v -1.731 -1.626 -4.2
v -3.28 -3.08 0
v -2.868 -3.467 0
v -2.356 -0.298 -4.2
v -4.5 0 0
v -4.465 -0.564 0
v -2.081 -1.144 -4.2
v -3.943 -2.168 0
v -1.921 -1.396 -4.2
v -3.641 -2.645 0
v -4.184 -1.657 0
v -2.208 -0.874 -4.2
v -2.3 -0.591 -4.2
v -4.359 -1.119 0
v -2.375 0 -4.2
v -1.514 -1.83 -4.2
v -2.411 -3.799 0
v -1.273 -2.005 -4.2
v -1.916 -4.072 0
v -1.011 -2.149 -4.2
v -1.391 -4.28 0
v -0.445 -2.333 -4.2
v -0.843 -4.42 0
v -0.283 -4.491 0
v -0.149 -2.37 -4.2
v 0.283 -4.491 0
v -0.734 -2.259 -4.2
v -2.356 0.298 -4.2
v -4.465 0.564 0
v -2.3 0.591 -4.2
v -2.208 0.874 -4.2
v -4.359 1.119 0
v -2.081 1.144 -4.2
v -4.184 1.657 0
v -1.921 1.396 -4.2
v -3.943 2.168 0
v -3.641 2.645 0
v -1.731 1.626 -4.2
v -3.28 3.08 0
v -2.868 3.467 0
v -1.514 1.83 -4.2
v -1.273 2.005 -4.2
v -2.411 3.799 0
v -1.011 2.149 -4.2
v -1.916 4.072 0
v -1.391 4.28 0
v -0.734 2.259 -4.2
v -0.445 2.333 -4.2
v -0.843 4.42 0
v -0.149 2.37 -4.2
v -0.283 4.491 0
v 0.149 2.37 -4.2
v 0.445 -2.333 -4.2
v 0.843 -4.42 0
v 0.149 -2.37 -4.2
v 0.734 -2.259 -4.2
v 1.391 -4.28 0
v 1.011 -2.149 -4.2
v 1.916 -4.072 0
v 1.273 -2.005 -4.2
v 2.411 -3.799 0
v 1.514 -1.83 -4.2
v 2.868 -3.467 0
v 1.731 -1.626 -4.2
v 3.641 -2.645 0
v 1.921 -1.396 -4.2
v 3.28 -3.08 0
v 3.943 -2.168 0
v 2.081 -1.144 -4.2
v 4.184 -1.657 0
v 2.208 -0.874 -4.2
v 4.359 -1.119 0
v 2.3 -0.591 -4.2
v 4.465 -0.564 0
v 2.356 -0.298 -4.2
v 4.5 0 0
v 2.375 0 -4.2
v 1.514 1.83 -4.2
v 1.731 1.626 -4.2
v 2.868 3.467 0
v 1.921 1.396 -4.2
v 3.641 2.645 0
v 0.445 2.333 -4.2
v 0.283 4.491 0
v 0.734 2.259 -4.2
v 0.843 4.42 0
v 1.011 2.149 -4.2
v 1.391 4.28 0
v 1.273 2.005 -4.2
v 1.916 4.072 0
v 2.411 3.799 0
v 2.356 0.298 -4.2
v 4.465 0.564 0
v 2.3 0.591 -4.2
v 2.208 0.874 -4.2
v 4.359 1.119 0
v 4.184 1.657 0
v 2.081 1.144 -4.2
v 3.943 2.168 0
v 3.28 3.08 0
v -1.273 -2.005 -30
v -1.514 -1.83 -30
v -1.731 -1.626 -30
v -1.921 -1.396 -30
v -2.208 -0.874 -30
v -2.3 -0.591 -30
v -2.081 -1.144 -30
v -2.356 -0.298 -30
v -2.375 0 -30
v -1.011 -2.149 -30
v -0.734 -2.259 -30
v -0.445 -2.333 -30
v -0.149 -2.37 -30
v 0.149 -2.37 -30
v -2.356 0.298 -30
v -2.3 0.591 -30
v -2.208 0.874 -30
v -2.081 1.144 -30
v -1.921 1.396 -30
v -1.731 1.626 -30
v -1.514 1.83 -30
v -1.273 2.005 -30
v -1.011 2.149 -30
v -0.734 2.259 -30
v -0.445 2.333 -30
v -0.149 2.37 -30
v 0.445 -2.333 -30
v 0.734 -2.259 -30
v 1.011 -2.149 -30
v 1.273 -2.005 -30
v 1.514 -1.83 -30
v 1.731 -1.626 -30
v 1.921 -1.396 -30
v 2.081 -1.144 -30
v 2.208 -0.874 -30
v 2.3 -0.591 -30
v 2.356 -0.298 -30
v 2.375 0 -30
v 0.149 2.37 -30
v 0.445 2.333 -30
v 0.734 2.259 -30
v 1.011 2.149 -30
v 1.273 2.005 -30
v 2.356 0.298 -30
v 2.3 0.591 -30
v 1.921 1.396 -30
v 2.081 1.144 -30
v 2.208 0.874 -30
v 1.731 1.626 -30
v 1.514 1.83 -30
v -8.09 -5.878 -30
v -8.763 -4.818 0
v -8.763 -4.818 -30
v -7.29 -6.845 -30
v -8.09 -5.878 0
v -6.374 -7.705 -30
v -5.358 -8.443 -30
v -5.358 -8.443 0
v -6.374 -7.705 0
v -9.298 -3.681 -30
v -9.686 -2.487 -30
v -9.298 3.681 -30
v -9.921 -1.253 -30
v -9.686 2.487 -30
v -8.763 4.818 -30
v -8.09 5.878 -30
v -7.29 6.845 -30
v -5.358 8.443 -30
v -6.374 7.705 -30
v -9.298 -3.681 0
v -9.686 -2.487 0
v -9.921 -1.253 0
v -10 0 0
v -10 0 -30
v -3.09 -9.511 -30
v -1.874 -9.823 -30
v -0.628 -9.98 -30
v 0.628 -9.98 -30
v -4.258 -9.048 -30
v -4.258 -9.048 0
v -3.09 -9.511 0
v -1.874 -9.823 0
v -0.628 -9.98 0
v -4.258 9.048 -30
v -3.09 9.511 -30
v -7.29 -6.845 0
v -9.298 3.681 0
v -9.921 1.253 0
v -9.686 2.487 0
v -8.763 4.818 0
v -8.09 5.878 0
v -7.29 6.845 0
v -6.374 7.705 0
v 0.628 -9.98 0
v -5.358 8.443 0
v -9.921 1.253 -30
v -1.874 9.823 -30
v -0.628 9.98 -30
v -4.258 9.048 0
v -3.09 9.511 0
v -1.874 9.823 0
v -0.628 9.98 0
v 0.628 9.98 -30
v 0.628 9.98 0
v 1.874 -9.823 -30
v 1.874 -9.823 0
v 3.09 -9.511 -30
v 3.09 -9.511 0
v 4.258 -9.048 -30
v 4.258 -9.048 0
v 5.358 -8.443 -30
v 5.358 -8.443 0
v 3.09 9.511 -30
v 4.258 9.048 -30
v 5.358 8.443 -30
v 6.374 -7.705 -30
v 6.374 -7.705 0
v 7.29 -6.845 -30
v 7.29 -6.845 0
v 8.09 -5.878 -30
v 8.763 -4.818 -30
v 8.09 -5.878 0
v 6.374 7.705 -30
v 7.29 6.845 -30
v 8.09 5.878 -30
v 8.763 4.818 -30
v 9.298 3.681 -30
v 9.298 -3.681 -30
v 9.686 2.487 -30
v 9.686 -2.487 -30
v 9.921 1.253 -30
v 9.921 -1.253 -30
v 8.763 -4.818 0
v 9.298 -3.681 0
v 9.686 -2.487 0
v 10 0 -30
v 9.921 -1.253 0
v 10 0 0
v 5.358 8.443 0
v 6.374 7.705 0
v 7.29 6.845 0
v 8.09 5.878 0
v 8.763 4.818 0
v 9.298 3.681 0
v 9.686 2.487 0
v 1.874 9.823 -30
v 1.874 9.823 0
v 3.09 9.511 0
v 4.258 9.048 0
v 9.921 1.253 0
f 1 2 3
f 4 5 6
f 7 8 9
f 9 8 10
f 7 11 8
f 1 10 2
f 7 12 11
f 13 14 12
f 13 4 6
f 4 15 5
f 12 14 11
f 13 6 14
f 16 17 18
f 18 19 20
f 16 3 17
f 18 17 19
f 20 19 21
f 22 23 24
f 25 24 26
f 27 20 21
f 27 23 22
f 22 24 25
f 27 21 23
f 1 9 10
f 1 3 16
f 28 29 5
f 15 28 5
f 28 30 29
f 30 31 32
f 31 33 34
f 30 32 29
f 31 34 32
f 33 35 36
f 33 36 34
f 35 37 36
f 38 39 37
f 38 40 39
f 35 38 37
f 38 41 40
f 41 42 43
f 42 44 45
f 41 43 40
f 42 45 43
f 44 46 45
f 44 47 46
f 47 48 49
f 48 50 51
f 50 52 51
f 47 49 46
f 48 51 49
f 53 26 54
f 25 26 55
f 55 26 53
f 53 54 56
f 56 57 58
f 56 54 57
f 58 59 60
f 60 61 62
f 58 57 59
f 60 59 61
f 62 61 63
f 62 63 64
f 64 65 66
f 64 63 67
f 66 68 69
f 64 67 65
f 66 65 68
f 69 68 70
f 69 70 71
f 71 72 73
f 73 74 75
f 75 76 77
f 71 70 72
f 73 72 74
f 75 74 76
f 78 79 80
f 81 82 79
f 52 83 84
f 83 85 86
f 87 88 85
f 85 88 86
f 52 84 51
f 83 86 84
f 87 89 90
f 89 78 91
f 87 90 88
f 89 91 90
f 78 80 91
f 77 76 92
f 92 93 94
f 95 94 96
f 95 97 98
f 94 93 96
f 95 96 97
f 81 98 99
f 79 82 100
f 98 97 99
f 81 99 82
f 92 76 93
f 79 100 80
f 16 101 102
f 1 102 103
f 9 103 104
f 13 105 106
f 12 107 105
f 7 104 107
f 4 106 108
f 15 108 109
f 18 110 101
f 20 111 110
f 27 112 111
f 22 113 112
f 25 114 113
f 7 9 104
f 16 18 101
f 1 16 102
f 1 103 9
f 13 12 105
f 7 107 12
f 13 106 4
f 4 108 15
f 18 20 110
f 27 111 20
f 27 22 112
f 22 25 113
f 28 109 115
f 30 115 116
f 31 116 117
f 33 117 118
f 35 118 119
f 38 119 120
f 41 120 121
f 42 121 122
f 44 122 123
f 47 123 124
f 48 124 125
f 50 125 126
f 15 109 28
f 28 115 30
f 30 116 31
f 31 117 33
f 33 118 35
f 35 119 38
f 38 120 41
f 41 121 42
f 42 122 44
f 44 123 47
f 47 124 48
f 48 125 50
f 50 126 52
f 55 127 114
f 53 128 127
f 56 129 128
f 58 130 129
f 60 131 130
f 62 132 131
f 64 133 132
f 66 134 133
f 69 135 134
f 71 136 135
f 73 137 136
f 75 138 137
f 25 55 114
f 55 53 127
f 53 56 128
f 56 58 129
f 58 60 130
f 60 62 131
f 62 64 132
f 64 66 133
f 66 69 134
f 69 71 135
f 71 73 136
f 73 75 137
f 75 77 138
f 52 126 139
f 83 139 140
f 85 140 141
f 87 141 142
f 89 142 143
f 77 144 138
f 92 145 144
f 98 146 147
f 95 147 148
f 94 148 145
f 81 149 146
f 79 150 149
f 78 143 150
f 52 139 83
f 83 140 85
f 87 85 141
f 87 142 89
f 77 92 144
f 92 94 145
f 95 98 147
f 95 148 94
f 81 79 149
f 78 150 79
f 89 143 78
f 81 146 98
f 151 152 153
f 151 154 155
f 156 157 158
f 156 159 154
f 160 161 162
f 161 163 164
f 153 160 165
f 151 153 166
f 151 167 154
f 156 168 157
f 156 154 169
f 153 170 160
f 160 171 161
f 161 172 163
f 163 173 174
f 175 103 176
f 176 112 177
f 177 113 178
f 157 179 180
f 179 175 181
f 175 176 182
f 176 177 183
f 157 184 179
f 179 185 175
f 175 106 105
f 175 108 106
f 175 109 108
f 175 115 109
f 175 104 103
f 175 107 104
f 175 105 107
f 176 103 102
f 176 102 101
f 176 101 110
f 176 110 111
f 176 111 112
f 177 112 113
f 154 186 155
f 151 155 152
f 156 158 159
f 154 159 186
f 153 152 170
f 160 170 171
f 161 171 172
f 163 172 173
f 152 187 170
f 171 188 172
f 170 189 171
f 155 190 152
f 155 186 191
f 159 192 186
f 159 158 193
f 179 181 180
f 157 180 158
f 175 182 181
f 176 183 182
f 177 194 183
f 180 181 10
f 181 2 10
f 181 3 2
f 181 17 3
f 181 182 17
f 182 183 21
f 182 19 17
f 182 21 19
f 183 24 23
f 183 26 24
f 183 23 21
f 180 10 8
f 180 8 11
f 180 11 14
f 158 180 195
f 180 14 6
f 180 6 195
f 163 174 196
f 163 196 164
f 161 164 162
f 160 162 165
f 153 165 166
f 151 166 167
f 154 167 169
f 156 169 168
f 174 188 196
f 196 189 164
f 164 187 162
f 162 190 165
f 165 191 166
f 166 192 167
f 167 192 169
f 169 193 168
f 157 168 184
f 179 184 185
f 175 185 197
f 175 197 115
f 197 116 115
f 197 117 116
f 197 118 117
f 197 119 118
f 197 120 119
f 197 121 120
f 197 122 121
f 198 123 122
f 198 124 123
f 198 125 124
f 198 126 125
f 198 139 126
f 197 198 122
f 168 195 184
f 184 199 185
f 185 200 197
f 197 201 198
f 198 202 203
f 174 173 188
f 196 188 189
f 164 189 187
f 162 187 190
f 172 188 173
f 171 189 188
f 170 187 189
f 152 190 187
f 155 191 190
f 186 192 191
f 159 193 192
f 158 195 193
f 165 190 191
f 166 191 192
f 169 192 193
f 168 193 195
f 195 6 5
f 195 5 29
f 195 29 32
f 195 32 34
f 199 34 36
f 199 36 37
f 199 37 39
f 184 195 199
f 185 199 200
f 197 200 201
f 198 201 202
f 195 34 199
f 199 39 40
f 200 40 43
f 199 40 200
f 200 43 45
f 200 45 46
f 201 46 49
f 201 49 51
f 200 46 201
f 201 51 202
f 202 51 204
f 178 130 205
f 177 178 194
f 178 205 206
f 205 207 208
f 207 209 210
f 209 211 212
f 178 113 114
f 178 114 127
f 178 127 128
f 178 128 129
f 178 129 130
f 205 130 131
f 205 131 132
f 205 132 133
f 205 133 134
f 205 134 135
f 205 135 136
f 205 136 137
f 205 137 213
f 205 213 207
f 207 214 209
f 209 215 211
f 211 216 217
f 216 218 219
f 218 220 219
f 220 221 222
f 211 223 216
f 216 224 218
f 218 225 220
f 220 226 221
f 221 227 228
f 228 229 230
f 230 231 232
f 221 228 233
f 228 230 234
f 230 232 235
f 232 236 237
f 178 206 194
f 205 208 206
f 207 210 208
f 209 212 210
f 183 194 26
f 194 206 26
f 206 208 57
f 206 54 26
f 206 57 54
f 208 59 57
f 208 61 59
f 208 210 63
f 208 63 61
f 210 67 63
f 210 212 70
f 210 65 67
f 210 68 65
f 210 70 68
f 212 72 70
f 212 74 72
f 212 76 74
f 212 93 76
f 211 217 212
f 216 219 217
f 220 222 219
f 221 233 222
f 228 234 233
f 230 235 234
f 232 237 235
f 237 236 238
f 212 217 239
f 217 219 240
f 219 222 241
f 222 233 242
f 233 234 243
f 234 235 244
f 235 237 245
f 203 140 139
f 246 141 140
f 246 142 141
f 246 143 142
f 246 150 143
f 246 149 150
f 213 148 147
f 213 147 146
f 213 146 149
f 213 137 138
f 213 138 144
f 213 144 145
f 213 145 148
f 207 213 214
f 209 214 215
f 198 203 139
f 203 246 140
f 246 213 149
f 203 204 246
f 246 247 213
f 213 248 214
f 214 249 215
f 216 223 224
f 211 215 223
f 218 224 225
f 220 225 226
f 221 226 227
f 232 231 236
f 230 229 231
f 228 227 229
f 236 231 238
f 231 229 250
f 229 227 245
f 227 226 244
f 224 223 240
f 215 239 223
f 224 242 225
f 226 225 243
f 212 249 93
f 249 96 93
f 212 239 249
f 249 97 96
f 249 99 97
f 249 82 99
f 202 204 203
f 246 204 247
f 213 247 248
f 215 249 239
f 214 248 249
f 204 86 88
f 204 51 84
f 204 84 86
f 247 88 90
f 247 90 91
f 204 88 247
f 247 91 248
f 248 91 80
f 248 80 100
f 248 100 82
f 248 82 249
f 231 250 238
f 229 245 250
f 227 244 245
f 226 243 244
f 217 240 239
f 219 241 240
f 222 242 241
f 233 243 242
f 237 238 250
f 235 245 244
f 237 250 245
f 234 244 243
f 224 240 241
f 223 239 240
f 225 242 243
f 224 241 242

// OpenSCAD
$fn = 50;


difference() {
	union() {
		translate(v = [0, 0, -30.0000000000]) {
			cylinder(h = 30, r = 10.0000000000);
		}
	}
	union() {
		translate(v = [0, 0, 0]) {
			rotate(a = [0, 0, 0]) {
				difference() {
					union() {
						translate(v = [0, 0, -33.0000000000]) {
							cylinder(h = 33, r = 2.2500000000);
						}
						translate(v = [0, 0, -4.2000000000]) {
							cylinder(h = 4.2000000000, r1 = 2.3750000000, r2 = 4.5000000000);
						}
						translate(v = [0, 0, -33.0000000000]) {
							cylinder(h = 33, r = 2.3750000000);
						}
						translate(v = [0, 0, -33.0000000000]) {
							cylinder(h = 33, r = 2.2500000000);
						}
					}
					union();
				}
			}
		}
	}
}
